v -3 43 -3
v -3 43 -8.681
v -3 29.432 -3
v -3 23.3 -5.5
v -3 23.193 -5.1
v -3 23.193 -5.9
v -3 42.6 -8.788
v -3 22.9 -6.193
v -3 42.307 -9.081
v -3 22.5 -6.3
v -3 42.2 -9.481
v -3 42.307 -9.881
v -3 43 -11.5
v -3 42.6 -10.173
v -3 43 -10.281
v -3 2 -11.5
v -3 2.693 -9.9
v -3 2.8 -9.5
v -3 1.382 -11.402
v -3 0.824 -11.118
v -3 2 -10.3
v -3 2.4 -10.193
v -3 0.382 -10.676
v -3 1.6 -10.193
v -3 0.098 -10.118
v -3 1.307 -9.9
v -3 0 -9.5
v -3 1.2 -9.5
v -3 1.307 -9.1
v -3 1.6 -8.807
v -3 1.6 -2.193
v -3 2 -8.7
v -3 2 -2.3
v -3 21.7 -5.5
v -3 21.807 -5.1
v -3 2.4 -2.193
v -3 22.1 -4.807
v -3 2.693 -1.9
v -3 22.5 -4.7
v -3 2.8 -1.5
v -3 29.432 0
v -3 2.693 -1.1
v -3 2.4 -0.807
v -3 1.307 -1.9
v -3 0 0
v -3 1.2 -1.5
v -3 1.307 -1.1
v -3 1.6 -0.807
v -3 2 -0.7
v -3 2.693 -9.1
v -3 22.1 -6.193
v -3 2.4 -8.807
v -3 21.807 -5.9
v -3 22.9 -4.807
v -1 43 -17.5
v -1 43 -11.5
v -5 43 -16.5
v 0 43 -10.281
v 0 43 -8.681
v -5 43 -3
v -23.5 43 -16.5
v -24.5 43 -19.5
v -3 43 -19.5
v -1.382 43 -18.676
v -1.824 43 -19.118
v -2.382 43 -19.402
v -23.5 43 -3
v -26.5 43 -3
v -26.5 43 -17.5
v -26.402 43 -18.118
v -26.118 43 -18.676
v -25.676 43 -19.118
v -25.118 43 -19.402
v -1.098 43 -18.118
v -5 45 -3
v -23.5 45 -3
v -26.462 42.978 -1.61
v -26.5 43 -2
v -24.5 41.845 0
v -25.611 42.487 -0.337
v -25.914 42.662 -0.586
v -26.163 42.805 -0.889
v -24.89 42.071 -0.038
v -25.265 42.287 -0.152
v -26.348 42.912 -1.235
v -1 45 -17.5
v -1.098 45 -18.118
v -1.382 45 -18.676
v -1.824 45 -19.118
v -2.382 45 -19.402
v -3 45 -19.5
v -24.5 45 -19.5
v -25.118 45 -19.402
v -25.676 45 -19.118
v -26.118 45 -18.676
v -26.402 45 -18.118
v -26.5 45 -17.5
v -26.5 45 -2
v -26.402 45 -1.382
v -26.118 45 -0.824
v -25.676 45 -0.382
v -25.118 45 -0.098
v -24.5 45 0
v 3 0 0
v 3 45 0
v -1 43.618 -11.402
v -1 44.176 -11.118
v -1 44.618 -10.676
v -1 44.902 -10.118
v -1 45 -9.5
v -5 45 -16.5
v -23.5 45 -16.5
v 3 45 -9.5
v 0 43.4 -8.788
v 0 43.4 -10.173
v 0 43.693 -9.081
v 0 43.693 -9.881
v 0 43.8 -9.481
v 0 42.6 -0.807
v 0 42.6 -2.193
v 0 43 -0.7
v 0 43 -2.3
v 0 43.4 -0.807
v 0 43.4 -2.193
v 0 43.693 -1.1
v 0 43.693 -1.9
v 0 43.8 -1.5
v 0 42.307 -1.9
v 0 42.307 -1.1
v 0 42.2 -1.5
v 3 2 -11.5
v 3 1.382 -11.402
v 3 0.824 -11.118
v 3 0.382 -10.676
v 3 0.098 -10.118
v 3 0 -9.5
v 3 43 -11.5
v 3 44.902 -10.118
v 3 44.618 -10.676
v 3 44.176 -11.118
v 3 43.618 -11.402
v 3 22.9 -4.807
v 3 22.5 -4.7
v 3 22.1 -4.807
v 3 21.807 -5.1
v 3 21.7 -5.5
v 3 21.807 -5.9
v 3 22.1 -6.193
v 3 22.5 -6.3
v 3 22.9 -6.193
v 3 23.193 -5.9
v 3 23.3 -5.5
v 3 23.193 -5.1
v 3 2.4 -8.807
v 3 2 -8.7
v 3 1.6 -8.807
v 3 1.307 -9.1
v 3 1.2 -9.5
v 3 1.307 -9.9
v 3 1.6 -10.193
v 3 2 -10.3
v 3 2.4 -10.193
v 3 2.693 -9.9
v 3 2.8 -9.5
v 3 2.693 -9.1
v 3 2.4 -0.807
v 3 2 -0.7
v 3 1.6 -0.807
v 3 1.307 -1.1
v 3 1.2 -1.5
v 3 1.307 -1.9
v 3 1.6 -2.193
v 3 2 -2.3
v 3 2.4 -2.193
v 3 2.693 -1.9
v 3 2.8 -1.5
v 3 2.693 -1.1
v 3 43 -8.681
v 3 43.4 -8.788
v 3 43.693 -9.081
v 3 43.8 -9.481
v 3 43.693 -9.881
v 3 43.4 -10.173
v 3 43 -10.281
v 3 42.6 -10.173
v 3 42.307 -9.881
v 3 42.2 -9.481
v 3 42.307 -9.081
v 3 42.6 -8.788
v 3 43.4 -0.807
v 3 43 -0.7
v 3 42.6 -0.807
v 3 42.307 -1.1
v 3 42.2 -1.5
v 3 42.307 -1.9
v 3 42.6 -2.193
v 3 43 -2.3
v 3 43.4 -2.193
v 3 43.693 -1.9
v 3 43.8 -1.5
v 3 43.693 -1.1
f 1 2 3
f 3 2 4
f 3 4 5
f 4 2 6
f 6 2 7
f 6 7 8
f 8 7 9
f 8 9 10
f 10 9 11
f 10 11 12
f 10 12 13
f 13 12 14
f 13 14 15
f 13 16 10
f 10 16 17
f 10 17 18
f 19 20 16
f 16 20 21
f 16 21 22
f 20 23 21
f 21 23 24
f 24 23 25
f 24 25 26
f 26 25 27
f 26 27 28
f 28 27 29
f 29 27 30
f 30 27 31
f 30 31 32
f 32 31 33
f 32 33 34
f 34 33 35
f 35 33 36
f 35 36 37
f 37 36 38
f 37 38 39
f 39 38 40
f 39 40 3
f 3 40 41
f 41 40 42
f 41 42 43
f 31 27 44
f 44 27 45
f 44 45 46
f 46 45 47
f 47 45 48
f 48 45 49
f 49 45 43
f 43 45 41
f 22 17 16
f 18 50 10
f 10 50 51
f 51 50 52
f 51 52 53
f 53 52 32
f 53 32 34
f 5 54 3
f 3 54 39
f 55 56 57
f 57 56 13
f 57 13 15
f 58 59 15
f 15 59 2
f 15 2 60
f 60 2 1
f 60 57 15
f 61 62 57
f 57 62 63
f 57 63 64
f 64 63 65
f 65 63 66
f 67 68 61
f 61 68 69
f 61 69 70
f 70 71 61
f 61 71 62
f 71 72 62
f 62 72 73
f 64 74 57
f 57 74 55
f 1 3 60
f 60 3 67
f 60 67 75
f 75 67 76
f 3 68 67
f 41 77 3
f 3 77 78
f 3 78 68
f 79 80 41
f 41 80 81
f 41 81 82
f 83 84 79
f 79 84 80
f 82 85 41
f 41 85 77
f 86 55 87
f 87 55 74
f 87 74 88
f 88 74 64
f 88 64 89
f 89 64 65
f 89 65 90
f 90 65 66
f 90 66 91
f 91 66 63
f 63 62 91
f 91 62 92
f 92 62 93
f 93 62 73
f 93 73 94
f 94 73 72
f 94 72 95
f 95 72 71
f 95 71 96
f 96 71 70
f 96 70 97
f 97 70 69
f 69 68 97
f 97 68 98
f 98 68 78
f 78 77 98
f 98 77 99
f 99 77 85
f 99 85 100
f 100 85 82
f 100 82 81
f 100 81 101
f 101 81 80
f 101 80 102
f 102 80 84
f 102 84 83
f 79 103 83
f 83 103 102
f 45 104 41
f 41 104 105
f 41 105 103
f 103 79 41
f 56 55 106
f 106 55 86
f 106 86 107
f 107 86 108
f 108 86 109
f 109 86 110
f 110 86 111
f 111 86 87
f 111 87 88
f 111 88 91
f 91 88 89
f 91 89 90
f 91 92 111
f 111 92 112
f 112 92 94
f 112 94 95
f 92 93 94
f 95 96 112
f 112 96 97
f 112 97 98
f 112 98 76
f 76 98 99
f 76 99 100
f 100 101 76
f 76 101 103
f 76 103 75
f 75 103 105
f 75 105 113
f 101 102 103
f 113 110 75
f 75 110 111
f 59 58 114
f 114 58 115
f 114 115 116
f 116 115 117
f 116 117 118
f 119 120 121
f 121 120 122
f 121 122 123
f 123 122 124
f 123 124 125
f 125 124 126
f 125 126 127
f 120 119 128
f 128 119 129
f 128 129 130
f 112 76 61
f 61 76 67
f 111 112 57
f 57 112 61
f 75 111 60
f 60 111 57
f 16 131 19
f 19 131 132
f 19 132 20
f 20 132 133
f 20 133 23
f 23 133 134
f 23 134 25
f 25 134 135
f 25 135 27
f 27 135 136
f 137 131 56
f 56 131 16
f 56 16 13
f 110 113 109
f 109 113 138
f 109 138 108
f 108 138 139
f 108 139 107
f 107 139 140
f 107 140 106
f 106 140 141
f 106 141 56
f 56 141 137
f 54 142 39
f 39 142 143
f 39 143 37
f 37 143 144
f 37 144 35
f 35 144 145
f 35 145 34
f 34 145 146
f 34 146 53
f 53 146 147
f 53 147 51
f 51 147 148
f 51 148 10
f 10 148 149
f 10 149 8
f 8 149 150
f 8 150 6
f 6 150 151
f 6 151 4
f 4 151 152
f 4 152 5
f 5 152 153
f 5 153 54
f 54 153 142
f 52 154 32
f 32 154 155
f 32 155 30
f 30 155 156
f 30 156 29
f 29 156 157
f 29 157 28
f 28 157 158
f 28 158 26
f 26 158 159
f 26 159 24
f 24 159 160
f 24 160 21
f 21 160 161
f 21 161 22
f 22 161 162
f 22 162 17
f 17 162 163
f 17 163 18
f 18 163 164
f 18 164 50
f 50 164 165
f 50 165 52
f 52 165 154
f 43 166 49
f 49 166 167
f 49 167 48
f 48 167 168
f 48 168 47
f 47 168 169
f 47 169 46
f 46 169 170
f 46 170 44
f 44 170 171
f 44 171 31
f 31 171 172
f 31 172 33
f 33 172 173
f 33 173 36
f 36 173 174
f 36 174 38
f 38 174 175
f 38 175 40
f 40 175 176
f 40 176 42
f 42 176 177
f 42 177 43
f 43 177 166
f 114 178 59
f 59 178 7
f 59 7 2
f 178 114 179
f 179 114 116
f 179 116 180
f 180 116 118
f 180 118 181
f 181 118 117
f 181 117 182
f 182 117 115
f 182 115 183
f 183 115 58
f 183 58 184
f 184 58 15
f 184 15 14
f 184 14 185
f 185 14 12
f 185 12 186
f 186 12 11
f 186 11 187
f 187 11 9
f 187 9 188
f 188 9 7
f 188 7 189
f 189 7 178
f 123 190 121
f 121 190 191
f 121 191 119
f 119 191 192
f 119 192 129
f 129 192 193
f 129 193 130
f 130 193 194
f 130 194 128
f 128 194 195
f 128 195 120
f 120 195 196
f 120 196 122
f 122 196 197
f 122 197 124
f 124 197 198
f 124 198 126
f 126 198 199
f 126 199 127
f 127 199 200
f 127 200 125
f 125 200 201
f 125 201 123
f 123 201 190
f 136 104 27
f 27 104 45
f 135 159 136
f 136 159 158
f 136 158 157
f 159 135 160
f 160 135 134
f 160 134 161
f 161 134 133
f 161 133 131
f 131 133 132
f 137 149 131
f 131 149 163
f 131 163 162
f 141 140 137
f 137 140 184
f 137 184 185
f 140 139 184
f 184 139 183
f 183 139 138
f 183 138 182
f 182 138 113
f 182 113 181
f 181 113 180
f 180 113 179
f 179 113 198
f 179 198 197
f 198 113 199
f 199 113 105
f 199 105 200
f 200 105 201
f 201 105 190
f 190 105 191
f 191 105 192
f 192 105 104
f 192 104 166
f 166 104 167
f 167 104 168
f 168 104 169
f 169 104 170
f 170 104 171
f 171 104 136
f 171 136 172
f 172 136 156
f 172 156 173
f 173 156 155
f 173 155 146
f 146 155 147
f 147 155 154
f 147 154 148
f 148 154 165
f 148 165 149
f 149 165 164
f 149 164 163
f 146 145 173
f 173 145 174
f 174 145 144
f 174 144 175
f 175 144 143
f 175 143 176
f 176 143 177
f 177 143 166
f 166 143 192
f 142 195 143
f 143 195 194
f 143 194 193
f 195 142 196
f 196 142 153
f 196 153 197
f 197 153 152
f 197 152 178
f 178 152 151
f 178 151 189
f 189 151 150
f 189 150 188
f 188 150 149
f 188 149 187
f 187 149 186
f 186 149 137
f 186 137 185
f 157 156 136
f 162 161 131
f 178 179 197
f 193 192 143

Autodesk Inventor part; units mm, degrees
ref_plane "YZ Plane" through (0, 0, 0) normal (1, 0, 0) x (0, 1, 0)
ref_plane "XZ Plane" through (0, 0, 0) normal (0, 1, 0) x (-1, 0, 0)
ref_plane "XY Plane" through (0, 0, 0) normal (0, 0, 1) x (1, 0, 0)
sketch "スケッチ1" plane through (0, 0, 0) normal (1, 0, 0) x (0, 1, 0)
  line L0 (45, 0) -> (0, 0)
  line L1 (0, 0) -> (0, -11.5)
  line L2 (0, -11.5) -> (45, -11.5)
  line L3 (45, -11.5) -> (45, 0)
  dimension "d0" = 45
  dimension "d1" = 11.5
extrude "押し出し1" add sketch "スケッチ1" along normal blind 3
sketch "スケッチ2" plane through (3, 0, 0) normal (1, 0, 0) x (0, 0, -1)
  circle A0 centre (1.5, 43) radius 0.8 projected
  circle A1 centre (9.4807, 43) radius 0.8 projected
  circle A2 centre (9.5, 2) radius 0.8 projected
  circle A3 centre (1.5, 2) radius 0.8 projected
  circle A4 centre (5.5, 22.5) radius 0.8 projected
  point P0 (0, 0)
extrude "押し出し2" cut sketch "スケッチ2" against normal through all
fillet "フィレット1" radius 2 2 edges at (1.5, 45, -11.5) (1.5, 0, -11.5)
sketch "スケッチ5" plane through (0, 45, 0) normal (0, 1, 0) x (1, 0, 0)
  line L0 (-5, 3) -> (-23.5, 3)
  line L1 (-23.5, 3) -> (-23.5, 16.5)
  line L2 (-23.5, 16.5) -> (-5, 16.5)
  line L3 (-5, 16.5) -> (-5, 3)
  line L4 (0, 0) -> (-26.5, 0)
  line L5 (-26.5, 0) -> (-26.5, 19.5)
  line L6 (-26.5, 19.5) -> (0, 19.5)
  line L7 (0, 19.5) -> (0, 0)
  point P0 (3, 0)
  dimension "d15" = 18.5
  dimension "d16" = 13.5
  dimension "d17" = 3
  dimension "d18" = 5
  dimension "d19" = 3
  dimension "d20" = 3
extrude "押し出し4" add sketch "スケッチ5" against normal blind 2
sketch "スケッチ6" plane through (0, 0, 0) normal (0, 0, 1) x (1, 0, 0)
  line L0 (0, 43) -> (-26.5, 43) projected
  line L1 (-26.5, 43) -> (0, 27.7002)
  line L2 (0, 25.5) -> (0, 40) projected
  line L3 (0, 43) -> (0, 0) projected
  dimension "d23" = 30
extrude "押し出し5" add sketch "スケッチ6" against normal up to surface (3 mm away)
sketch "スケッチ7" plane through (0, 45, -9.5) normal (1, 0, 0) x (0, 0, -1)
  line L0 (0, 0) -> (10, 0) projected
  arc A0 (2, -2) -> (0, 0) centre (0, -2) ccw projected
  line L1 (10, -2) -> (2, -2) projected
  line L2 (10, 0) -> (10, -2) projected
  line L3 (0, 0) -> (10, 0) projected
  point P0 (-9.5, -45)
extrude "押し出し6" cut sketch "スケッチ7" against normal blind 1
fillet "フィレット2" radius 2 3 edges at (-26.5, 44, 0) (-26.5, 44, -19.5) (-1, 44, -19.5)
sketch "スケッチ8" plane through (0, 0, 0) normal (-1, 0, 0) x (0, 0, 1)
  circle A0 centre (-1.5, 2) radius 0.8 projected
  circle A1 centre (-9.5, 2) radius 0.8 projected
  circle A2 centre (-5.5, 22.5) radius 0.8 projected
  line L0 (0, 27.7002) -> (-3, 27.7002) projected
  line L1 (-3, 27.7002) -> (-3, 43) projected
  line L2 (-3, 43) -> (-8.6807, 43) projected
  arc A3 (-10.2807, 43) -> (-8.6807, 43) centre (-9.4807, 43) ccw projected
  line L3 (-10.2807, 43) -> (-11.5, 43) projected
  line L4 (-11.5, 2) -> (-11.5, 43) projected
  arc A4 (-11.5, 2) -> (-9.5, 0) centre (-9.5, 2) ccw projected
  line L5 (0, 0) -> (-9.5, 0) projected
  line L6 (0, 27.7002) -> (0, 0) projected
  line L7 (-3, 39.3409) -> (0, 39.3409)
  line L8 (0, 39.3409) -> (0, 27.7002)
  line L9 (0, 27.7002) -> (-3, 27.7002)
  line L10 (-3, 27.7002) -> (-3, 39.3409)
extrude "押し出し7" add sketch "スケッチ8" along normal blind 3
equation "\"d19\" = d17"
equation "\"d20\" = d17"
properties part number "button_setter"
